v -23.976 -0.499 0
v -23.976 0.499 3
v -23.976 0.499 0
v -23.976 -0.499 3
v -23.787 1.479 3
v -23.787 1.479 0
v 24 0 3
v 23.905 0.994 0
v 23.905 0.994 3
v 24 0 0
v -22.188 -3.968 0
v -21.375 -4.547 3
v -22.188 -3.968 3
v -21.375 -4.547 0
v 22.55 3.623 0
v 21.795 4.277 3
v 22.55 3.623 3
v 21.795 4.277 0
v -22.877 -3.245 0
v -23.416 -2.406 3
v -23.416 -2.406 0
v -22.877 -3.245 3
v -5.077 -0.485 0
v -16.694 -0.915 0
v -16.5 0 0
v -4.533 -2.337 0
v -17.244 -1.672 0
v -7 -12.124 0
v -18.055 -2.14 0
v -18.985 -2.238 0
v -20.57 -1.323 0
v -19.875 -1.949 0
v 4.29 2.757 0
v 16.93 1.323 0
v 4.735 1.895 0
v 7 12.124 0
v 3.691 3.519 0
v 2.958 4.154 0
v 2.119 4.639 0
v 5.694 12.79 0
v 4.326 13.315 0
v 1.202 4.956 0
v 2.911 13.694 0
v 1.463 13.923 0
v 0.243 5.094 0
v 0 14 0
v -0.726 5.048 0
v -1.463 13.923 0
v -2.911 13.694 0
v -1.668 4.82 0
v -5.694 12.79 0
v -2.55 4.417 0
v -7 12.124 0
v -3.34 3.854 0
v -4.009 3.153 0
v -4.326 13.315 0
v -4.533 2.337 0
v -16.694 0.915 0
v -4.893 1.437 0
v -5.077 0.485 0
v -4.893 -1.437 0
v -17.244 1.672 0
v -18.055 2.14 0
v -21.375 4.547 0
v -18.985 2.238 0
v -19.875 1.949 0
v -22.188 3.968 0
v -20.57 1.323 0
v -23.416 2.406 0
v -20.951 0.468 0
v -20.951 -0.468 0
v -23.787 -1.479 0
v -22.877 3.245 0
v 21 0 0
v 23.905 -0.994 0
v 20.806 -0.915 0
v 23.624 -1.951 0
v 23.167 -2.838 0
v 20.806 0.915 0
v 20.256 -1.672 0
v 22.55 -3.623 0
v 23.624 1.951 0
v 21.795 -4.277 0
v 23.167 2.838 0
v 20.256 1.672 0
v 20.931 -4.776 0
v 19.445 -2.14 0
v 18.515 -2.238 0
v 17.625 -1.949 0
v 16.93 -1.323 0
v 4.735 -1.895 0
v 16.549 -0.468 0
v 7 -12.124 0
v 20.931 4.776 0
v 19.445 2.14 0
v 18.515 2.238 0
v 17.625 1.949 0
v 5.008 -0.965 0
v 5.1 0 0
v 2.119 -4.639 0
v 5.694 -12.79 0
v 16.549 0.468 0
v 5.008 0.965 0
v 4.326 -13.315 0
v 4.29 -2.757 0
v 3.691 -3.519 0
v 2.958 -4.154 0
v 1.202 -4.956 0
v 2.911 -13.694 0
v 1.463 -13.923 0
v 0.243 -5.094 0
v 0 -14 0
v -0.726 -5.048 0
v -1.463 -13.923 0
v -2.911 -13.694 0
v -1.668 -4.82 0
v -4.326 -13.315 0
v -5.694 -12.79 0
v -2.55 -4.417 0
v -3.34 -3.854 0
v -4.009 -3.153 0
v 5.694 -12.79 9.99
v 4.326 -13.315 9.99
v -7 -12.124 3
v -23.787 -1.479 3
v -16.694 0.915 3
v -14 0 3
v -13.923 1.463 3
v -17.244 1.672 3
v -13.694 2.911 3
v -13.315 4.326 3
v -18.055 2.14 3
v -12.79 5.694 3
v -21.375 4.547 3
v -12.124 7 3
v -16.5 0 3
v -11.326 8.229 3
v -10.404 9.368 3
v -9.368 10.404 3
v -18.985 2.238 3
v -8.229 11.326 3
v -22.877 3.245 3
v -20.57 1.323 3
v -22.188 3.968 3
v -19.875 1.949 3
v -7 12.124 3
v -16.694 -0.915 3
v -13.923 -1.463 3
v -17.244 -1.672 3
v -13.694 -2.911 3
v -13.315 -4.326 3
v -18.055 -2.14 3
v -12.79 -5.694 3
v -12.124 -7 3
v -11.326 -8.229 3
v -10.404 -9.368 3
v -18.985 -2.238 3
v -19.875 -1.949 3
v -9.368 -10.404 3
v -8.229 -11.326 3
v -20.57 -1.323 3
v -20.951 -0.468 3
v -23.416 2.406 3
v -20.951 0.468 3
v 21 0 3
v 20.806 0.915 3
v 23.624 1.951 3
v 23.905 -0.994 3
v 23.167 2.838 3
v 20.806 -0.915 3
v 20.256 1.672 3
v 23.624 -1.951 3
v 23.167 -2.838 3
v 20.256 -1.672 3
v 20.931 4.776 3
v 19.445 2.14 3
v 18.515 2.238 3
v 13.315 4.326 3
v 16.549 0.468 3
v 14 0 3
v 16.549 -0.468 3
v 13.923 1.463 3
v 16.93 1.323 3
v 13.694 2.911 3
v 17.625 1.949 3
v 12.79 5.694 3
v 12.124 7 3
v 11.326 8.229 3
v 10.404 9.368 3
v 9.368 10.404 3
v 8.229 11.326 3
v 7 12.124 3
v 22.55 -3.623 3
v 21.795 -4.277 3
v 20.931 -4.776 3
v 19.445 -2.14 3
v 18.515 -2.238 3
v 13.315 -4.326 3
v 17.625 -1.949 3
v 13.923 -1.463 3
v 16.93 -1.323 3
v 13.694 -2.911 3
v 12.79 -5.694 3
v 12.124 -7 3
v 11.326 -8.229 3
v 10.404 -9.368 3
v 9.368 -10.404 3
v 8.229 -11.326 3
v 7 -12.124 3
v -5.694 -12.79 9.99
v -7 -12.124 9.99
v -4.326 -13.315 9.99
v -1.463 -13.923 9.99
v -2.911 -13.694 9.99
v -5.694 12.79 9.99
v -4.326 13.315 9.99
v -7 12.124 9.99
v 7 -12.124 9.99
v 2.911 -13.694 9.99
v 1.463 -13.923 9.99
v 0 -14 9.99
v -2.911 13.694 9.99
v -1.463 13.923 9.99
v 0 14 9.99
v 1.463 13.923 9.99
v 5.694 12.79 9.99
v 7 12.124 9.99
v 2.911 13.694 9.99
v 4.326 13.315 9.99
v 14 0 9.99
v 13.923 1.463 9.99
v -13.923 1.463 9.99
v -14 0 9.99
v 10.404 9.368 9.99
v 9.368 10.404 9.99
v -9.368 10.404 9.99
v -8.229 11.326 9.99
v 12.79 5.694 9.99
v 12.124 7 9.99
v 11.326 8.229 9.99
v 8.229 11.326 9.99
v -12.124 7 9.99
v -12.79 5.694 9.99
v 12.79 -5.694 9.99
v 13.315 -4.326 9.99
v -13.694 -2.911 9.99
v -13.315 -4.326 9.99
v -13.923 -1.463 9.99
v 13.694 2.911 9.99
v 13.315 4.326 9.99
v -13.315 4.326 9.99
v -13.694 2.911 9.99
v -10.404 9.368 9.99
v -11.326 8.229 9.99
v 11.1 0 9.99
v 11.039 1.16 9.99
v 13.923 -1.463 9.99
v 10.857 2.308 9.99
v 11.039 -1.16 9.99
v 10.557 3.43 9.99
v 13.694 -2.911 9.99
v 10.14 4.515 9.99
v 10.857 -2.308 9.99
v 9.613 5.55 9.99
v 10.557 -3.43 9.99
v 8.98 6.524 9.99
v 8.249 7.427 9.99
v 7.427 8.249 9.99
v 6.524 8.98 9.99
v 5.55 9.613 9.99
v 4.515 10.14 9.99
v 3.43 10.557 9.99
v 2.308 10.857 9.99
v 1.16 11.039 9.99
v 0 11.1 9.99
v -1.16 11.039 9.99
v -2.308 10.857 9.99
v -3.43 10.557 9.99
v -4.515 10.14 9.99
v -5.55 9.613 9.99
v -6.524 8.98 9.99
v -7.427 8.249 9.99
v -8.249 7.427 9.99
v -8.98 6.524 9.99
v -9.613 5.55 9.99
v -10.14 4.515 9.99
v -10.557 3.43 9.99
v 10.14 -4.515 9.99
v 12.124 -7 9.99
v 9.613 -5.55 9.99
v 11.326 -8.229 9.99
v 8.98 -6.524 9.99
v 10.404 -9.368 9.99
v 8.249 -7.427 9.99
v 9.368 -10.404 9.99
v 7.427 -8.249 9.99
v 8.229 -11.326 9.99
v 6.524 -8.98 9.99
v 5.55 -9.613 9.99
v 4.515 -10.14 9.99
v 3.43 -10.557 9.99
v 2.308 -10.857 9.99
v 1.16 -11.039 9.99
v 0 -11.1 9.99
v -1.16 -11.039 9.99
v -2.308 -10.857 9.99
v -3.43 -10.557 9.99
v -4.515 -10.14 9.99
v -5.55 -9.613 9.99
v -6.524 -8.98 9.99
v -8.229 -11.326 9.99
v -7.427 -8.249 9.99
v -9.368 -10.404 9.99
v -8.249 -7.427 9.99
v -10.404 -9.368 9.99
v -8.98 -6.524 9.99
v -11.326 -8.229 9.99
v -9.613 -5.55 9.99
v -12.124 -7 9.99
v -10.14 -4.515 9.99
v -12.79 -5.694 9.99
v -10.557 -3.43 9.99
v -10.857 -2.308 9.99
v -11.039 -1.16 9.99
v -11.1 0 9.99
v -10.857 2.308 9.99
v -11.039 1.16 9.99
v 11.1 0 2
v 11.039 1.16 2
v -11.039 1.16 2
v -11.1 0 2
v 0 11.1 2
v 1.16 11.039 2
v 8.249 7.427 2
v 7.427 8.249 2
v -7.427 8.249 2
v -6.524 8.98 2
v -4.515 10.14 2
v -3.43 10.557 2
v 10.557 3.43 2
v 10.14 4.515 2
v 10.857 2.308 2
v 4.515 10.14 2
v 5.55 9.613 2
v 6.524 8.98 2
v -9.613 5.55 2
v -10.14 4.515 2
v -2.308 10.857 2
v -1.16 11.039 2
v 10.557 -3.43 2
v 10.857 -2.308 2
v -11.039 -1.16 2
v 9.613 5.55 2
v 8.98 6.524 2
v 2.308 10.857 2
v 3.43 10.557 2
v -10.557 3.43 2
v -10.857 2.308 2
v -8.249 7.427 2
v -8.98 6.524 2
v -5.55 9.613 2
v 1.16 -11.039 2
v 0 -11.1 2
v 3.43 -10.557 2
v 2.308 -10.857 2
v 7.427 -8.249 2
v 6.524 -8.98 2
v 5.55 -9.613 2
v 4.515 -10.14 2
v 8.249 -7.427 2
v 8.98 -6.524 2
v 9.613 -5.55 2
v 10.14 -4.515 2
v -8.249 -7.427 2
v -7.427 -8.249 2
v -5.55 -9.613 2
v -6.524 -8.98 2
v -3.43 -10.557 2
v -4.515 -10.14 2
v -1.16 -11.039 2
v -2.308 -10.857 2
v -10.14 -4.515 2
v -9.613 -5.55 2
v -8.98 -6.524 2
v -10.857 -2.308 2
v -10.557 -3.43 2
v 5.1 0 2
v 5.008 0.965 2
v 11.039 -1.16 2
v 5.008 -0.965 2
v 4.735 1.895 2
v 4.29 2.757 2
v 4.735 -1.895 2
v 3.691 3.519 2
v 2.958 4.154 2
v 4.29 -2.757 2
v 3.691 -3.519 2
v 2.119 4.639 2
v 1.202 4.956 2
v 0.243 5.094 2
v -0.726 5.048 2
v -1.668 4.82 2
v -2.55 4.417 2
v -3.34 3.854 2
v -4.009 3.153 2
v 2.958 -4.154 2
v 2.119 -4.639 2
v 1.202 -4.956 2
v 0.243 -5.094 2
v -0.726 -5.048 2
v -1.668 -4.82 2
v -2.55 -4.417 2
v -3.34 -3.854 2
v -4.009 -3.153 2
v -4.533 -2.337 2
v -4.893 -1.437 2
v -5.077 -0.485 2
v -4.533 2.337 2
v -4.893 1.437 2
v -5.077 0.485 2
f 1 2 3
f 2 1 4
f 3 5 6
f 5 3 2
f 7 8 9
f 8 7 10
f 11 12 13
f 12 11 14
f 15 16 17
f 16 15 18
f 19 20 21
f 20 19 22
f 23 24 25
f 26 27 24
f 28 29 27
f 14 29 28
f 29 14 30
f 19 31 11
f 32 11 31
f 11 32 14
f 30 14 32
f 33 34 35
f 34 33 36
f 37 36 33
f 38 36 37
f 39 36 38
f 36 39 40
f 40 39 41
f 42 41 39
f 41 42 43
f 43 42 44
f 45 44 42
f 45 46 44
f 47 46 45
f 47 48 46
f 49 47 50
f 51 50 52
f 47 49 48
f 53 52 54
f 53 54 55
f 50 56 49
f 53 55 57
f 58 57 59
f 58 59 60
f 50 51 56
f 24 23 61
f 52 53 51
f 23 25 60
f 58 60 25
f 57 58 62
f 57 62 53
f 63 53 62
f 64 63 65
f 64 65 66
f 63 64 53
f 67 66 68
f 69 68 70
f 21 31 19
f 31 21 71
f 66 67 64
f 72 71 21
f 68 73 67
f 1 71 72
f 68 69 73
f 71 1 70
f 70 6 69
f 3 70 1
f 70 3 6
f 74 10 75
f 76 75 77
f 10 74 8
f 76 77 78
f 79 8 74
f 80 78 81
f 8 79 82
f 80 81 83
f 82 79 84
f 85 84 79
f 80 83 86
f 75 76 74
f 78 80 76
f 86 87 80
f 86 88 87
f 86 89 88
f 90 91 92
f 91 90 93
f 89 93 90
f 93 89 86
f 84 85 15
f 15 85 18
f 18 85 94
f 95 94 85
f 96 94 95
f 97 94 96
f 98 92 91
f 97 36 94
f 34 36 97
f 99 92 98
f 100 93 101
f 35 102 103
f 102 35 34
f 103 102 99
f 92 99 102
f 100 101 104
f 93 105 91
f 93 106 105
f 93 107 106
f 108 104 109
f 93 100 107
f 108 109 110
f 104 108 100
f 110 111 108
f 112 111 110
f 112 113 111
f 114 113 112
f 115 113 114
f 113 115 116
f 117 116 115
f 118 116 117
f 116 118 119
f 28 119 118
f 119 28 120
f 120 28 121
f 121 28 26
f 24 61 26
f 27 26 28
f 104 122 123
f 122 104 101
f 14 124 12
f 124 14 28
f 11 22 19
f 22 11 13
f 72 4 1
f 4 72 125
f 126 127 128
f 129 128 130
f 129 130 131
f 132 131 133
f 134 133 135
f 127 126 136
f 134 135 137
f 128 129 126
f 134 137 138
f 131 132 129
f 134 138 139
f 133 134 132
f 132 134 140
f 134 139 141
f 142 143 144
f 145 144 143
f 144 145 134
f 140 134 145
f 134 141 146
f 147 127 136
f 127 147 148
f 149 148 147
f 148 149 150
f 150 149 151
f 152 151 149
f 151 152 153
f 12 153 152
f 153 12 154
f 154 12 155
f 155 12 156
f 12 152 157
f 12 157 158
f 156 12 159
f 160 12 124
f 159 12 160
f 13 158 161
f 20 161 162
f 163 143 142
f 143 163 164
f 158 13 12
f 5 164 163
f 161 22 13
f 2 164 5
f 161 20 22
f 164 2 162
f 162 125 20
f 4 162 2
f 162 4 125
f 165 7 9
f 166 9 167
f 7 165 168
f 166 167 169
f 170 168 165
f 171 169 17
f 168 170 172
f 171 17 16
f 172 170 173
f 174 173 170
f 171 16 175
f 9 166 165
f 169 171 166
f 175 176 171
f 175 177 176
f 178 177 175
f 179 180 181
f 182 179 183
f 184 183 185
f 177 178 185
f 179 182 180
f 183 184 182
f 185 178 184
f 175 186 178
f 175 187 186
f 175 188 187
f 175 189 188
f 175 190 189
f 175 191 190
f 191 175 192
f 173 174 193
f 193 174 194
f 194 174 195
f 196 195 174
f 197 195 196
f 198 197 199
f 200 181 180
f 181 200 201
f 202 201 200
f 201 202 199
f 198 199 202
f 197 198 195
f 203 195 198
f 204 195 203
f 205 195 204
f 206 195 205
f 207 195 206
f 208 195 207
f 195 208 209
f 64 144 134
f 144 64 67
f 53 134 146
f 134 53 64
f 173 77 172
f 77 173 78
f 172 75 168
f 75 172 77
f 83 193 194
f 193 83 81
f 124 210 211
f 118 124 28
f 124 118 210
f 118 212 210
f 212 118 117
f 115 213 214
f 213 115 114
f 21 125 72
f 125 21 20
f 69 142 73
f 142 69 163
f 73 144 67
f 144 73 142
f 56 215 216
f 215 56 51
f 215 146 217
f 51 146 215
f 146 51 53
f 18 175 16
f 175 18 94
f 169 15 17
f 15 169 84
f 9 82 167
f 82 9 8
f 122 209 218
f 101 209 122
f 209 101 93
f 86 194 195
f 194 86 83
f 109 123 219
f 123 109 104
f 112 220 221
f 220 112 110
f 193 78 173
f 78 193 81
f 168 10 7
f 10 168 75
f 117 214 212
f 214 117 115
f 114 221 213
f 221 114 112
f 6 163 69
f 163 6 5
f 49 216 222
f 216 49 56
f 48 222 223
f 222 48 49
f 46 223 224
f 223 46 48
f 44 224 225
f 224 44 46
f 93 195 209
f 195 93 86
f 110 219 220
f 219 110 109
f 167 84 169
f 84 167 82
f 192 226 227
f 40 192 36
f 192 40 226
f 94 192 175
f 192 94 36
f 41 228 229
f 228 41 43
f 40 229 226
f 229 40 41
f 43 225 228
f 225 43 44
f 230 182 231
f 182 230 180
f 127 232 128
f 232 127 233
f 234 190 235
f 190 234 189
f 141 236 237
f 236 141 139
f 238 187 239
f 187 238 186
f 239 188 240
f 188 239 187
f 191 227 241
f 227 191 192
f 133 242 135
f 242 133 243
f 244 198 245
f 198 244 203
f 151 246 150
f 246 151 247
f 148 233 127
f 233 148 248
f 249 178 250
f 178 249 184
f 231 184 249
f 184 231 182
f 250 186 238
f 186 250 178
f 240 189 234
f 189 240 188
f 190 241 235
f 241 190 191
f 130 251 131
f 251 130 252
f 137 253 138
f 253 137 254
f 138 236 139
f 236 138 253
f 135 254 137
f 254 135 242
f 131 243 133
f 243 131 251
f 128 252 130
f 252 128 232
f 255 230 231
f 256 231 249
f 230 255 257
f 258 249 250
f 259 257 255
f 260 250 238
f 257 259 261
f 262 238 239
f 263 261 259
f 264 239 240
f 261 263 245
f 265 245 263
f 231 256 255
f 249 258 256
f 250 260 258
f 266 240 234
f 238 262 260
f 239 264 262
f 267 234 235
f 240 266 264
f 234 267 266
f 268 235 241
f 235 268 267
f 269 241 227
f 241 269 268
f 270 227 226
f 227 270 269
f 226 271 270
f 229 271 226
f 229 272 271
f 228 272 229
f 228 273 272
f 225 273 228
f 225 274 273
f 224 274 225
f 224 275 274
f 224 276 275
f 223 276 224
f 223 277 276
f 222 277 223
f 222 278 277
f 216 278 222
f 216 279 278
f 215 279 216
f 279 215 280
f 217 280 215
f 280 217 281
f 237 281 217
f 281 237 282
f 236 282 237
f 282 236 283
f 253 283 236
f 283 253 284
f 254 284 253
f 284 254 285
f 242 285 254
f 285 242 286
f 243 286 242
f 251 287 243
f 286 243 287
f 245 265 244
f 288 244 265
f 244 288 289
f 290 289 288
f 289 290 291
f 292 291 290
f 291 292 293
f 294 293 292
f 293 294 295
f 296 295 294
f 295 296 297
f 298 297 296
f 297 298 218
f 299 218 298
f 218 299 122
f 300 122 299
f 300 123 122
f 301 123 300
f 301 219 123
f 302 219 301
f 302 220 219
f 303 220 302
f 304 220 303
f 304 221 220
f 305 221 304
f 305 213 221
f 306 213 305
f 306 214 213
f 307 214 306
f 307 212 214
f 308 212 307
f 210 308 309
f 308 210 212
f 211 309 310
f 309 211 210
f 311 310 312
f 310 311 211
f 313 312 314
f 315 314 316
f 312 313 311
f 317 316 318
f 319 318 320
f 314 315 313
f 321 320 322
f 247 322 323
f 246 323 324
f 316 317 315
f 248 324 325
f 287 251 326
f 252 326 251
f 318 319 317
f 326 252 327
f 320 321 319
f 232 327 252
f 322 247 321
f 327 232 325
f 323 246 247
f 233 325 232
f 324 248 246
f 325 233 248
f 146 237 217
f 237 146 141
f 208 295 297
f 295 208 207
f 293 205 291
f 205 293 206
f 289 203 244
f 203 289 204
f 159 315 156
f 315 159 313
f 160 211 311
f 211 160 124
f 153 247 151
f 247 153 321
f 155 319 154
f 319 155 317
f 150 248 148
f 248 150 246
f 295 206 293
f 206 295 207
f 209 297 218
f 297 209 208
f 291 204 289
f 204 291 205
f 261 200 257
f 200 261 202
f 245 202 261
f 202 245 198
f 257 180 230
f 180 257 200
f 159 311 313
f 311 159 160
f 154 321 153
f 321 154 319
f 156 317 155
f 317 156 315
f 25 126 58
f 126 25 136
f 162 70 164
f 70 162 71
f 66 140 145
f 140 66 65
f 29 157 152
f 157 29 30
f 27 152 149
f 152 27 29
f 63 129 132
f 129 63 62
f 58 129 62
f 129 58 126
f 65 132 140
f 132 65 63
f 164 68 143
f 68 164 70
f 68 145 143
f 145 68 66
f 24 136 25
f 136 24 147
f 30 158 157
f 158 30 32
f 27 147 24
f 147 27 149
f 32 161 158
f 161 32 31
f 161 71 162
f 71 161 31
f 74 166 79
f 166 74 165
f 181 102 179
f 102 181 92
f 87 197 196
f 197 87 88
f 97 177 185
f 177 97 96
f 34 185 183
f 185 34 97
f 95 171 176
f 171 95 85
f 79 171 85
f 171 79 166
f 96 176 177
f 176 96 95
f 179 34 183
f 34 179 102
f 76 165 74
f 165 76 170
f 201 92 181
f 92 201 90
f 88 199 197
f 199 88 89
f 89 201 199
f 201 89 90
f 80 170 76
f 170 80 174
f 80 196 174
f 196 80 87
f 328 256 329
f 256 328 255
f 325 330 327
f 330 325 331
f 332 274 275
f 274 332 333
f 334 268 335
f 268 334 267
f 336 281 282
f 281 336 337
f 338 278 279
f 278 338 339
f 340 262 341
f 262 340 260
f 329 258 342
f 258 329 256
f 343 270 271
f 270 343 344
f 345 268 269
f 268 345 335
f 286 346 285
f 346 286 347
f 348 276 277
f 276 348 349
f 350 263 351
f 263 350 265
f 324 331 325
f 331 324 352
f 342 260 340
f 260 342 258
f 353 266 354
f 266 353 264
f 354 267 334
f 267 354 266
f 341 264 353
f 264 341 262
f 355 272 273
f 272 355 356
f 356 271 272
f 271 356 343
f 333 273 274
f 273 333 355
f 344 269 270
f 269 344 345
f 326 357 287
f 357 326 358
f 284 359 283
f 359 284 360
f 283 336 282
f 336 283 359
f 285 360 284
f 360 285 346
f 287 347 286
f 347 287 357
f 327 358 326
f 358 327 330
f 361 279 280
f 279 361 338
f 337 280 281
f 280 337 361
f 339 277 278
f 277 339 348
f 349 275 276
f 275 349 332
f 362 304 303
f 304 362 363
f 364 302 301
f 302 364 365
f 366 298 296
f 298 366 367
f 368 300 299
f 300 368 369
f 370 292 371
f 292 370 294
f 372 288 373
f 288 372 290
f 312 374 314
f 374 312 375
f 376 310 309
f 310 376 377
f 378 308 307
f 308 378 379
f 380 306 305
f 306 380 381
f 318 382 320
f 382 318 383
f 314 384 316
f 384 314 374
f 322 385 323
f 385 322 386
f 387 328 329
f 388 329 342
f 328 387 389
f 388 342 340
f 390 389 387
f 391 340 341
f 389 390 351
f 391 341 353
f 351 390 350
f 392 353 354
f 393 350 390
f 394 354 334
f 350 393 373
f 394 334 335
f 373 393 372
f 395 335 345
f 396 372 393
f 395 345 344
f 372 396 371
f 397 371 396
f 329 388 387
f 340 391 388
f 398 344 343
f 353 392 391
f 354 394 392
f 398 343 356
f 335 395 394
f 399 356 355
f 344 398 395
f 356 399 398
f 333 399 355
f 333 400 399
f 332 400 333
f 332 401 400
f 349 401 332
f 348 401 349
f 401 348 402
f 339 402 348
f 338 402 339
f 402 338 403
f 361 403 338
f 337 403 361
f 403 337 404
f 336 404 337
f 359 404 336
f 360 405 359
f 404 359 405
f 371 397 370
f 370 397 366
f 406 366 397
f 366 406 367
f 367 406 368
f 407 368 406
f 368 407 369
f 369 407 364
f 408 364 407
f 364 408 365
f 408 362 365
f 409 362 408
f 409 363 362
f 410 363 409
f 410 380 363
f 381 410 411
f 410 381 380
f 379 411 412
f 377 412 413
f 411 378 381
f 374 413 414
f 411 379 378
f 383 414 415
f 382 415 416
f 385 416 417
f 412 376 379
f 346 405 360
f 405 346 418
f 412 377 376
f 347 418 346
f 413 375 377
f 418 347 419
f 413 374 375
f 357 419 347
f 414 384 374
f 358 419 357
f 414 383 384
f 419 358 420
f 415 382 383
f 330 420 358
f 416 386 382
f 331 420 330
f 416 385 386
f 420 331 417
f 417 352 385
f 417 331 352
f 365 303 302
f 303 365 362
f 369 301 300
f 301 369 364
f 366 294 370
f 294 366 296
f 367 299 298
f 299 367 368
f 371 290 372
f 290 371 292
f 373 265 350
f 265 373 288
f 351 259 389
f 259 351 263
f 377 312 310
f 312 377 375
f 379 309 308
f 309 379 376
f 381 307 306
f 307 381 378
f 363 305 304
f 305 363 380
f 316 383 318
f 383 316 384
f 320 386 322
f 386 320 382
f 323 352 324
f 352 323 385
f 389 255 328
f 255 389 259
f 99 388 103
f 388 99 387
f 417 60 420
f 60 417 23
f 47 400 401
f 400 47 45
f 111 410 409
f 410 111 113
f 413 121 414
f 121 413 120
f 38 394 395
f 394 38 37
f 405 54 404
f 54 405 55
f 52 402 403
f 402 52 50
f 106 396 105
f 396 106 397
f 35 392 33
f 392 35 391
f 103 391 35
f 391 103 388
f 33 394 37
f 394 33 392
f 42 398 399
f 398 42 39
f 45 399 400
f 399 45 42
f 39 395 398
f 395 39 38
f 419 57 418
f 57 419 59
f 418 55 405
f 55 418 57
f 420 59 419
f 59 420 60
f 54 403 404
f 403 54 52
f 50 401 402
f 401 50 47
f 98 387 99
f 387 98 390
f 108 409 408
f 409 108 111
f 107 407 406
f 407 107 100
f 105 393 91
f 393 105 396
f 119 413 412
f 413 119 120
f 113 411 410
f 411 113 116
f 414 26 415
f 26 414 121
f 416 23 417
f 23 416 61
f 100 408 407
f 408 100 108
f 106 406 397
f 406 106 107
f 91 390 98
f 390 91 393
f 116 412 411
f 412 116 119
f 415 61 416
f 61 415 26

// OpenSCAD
h=7;
id=8;
od=22;
tol=0.2;

thickness=3;

hole_diameter=4.5;
// usually 36.5 for actual kfl08s
hole_spacing=37.5;

bottom_hole_diameter=id+2;

$fs=1;
$fa=6;

module kfl08() {
    difference() {
        union() {
            hull() {
                cylinder(d=od+thickness*2, h=thickness);
                for (i = [-1, 1])
                    translate([i*hole_spacing/2, 0, 0]) cylinder(d=hole_diameter+thickness*2, h=thickness);
            }
            cylinder(d=od+thickness*2, h=h+thickness-0.01);
        }
        translate([0, 0, 2]) cylinder(d=od+tol, h=h+thickness);
        cylinder(d=bottom_hole_diameter+tol, h=(h+thickness)*3, center=true);
        for (i = [-1, 1])
            translate([i*hole_spacing/2, 0, 0]) cylinder(d=hole_diameter, h=thickness*3, center=true);
    }
}

kfl08();
